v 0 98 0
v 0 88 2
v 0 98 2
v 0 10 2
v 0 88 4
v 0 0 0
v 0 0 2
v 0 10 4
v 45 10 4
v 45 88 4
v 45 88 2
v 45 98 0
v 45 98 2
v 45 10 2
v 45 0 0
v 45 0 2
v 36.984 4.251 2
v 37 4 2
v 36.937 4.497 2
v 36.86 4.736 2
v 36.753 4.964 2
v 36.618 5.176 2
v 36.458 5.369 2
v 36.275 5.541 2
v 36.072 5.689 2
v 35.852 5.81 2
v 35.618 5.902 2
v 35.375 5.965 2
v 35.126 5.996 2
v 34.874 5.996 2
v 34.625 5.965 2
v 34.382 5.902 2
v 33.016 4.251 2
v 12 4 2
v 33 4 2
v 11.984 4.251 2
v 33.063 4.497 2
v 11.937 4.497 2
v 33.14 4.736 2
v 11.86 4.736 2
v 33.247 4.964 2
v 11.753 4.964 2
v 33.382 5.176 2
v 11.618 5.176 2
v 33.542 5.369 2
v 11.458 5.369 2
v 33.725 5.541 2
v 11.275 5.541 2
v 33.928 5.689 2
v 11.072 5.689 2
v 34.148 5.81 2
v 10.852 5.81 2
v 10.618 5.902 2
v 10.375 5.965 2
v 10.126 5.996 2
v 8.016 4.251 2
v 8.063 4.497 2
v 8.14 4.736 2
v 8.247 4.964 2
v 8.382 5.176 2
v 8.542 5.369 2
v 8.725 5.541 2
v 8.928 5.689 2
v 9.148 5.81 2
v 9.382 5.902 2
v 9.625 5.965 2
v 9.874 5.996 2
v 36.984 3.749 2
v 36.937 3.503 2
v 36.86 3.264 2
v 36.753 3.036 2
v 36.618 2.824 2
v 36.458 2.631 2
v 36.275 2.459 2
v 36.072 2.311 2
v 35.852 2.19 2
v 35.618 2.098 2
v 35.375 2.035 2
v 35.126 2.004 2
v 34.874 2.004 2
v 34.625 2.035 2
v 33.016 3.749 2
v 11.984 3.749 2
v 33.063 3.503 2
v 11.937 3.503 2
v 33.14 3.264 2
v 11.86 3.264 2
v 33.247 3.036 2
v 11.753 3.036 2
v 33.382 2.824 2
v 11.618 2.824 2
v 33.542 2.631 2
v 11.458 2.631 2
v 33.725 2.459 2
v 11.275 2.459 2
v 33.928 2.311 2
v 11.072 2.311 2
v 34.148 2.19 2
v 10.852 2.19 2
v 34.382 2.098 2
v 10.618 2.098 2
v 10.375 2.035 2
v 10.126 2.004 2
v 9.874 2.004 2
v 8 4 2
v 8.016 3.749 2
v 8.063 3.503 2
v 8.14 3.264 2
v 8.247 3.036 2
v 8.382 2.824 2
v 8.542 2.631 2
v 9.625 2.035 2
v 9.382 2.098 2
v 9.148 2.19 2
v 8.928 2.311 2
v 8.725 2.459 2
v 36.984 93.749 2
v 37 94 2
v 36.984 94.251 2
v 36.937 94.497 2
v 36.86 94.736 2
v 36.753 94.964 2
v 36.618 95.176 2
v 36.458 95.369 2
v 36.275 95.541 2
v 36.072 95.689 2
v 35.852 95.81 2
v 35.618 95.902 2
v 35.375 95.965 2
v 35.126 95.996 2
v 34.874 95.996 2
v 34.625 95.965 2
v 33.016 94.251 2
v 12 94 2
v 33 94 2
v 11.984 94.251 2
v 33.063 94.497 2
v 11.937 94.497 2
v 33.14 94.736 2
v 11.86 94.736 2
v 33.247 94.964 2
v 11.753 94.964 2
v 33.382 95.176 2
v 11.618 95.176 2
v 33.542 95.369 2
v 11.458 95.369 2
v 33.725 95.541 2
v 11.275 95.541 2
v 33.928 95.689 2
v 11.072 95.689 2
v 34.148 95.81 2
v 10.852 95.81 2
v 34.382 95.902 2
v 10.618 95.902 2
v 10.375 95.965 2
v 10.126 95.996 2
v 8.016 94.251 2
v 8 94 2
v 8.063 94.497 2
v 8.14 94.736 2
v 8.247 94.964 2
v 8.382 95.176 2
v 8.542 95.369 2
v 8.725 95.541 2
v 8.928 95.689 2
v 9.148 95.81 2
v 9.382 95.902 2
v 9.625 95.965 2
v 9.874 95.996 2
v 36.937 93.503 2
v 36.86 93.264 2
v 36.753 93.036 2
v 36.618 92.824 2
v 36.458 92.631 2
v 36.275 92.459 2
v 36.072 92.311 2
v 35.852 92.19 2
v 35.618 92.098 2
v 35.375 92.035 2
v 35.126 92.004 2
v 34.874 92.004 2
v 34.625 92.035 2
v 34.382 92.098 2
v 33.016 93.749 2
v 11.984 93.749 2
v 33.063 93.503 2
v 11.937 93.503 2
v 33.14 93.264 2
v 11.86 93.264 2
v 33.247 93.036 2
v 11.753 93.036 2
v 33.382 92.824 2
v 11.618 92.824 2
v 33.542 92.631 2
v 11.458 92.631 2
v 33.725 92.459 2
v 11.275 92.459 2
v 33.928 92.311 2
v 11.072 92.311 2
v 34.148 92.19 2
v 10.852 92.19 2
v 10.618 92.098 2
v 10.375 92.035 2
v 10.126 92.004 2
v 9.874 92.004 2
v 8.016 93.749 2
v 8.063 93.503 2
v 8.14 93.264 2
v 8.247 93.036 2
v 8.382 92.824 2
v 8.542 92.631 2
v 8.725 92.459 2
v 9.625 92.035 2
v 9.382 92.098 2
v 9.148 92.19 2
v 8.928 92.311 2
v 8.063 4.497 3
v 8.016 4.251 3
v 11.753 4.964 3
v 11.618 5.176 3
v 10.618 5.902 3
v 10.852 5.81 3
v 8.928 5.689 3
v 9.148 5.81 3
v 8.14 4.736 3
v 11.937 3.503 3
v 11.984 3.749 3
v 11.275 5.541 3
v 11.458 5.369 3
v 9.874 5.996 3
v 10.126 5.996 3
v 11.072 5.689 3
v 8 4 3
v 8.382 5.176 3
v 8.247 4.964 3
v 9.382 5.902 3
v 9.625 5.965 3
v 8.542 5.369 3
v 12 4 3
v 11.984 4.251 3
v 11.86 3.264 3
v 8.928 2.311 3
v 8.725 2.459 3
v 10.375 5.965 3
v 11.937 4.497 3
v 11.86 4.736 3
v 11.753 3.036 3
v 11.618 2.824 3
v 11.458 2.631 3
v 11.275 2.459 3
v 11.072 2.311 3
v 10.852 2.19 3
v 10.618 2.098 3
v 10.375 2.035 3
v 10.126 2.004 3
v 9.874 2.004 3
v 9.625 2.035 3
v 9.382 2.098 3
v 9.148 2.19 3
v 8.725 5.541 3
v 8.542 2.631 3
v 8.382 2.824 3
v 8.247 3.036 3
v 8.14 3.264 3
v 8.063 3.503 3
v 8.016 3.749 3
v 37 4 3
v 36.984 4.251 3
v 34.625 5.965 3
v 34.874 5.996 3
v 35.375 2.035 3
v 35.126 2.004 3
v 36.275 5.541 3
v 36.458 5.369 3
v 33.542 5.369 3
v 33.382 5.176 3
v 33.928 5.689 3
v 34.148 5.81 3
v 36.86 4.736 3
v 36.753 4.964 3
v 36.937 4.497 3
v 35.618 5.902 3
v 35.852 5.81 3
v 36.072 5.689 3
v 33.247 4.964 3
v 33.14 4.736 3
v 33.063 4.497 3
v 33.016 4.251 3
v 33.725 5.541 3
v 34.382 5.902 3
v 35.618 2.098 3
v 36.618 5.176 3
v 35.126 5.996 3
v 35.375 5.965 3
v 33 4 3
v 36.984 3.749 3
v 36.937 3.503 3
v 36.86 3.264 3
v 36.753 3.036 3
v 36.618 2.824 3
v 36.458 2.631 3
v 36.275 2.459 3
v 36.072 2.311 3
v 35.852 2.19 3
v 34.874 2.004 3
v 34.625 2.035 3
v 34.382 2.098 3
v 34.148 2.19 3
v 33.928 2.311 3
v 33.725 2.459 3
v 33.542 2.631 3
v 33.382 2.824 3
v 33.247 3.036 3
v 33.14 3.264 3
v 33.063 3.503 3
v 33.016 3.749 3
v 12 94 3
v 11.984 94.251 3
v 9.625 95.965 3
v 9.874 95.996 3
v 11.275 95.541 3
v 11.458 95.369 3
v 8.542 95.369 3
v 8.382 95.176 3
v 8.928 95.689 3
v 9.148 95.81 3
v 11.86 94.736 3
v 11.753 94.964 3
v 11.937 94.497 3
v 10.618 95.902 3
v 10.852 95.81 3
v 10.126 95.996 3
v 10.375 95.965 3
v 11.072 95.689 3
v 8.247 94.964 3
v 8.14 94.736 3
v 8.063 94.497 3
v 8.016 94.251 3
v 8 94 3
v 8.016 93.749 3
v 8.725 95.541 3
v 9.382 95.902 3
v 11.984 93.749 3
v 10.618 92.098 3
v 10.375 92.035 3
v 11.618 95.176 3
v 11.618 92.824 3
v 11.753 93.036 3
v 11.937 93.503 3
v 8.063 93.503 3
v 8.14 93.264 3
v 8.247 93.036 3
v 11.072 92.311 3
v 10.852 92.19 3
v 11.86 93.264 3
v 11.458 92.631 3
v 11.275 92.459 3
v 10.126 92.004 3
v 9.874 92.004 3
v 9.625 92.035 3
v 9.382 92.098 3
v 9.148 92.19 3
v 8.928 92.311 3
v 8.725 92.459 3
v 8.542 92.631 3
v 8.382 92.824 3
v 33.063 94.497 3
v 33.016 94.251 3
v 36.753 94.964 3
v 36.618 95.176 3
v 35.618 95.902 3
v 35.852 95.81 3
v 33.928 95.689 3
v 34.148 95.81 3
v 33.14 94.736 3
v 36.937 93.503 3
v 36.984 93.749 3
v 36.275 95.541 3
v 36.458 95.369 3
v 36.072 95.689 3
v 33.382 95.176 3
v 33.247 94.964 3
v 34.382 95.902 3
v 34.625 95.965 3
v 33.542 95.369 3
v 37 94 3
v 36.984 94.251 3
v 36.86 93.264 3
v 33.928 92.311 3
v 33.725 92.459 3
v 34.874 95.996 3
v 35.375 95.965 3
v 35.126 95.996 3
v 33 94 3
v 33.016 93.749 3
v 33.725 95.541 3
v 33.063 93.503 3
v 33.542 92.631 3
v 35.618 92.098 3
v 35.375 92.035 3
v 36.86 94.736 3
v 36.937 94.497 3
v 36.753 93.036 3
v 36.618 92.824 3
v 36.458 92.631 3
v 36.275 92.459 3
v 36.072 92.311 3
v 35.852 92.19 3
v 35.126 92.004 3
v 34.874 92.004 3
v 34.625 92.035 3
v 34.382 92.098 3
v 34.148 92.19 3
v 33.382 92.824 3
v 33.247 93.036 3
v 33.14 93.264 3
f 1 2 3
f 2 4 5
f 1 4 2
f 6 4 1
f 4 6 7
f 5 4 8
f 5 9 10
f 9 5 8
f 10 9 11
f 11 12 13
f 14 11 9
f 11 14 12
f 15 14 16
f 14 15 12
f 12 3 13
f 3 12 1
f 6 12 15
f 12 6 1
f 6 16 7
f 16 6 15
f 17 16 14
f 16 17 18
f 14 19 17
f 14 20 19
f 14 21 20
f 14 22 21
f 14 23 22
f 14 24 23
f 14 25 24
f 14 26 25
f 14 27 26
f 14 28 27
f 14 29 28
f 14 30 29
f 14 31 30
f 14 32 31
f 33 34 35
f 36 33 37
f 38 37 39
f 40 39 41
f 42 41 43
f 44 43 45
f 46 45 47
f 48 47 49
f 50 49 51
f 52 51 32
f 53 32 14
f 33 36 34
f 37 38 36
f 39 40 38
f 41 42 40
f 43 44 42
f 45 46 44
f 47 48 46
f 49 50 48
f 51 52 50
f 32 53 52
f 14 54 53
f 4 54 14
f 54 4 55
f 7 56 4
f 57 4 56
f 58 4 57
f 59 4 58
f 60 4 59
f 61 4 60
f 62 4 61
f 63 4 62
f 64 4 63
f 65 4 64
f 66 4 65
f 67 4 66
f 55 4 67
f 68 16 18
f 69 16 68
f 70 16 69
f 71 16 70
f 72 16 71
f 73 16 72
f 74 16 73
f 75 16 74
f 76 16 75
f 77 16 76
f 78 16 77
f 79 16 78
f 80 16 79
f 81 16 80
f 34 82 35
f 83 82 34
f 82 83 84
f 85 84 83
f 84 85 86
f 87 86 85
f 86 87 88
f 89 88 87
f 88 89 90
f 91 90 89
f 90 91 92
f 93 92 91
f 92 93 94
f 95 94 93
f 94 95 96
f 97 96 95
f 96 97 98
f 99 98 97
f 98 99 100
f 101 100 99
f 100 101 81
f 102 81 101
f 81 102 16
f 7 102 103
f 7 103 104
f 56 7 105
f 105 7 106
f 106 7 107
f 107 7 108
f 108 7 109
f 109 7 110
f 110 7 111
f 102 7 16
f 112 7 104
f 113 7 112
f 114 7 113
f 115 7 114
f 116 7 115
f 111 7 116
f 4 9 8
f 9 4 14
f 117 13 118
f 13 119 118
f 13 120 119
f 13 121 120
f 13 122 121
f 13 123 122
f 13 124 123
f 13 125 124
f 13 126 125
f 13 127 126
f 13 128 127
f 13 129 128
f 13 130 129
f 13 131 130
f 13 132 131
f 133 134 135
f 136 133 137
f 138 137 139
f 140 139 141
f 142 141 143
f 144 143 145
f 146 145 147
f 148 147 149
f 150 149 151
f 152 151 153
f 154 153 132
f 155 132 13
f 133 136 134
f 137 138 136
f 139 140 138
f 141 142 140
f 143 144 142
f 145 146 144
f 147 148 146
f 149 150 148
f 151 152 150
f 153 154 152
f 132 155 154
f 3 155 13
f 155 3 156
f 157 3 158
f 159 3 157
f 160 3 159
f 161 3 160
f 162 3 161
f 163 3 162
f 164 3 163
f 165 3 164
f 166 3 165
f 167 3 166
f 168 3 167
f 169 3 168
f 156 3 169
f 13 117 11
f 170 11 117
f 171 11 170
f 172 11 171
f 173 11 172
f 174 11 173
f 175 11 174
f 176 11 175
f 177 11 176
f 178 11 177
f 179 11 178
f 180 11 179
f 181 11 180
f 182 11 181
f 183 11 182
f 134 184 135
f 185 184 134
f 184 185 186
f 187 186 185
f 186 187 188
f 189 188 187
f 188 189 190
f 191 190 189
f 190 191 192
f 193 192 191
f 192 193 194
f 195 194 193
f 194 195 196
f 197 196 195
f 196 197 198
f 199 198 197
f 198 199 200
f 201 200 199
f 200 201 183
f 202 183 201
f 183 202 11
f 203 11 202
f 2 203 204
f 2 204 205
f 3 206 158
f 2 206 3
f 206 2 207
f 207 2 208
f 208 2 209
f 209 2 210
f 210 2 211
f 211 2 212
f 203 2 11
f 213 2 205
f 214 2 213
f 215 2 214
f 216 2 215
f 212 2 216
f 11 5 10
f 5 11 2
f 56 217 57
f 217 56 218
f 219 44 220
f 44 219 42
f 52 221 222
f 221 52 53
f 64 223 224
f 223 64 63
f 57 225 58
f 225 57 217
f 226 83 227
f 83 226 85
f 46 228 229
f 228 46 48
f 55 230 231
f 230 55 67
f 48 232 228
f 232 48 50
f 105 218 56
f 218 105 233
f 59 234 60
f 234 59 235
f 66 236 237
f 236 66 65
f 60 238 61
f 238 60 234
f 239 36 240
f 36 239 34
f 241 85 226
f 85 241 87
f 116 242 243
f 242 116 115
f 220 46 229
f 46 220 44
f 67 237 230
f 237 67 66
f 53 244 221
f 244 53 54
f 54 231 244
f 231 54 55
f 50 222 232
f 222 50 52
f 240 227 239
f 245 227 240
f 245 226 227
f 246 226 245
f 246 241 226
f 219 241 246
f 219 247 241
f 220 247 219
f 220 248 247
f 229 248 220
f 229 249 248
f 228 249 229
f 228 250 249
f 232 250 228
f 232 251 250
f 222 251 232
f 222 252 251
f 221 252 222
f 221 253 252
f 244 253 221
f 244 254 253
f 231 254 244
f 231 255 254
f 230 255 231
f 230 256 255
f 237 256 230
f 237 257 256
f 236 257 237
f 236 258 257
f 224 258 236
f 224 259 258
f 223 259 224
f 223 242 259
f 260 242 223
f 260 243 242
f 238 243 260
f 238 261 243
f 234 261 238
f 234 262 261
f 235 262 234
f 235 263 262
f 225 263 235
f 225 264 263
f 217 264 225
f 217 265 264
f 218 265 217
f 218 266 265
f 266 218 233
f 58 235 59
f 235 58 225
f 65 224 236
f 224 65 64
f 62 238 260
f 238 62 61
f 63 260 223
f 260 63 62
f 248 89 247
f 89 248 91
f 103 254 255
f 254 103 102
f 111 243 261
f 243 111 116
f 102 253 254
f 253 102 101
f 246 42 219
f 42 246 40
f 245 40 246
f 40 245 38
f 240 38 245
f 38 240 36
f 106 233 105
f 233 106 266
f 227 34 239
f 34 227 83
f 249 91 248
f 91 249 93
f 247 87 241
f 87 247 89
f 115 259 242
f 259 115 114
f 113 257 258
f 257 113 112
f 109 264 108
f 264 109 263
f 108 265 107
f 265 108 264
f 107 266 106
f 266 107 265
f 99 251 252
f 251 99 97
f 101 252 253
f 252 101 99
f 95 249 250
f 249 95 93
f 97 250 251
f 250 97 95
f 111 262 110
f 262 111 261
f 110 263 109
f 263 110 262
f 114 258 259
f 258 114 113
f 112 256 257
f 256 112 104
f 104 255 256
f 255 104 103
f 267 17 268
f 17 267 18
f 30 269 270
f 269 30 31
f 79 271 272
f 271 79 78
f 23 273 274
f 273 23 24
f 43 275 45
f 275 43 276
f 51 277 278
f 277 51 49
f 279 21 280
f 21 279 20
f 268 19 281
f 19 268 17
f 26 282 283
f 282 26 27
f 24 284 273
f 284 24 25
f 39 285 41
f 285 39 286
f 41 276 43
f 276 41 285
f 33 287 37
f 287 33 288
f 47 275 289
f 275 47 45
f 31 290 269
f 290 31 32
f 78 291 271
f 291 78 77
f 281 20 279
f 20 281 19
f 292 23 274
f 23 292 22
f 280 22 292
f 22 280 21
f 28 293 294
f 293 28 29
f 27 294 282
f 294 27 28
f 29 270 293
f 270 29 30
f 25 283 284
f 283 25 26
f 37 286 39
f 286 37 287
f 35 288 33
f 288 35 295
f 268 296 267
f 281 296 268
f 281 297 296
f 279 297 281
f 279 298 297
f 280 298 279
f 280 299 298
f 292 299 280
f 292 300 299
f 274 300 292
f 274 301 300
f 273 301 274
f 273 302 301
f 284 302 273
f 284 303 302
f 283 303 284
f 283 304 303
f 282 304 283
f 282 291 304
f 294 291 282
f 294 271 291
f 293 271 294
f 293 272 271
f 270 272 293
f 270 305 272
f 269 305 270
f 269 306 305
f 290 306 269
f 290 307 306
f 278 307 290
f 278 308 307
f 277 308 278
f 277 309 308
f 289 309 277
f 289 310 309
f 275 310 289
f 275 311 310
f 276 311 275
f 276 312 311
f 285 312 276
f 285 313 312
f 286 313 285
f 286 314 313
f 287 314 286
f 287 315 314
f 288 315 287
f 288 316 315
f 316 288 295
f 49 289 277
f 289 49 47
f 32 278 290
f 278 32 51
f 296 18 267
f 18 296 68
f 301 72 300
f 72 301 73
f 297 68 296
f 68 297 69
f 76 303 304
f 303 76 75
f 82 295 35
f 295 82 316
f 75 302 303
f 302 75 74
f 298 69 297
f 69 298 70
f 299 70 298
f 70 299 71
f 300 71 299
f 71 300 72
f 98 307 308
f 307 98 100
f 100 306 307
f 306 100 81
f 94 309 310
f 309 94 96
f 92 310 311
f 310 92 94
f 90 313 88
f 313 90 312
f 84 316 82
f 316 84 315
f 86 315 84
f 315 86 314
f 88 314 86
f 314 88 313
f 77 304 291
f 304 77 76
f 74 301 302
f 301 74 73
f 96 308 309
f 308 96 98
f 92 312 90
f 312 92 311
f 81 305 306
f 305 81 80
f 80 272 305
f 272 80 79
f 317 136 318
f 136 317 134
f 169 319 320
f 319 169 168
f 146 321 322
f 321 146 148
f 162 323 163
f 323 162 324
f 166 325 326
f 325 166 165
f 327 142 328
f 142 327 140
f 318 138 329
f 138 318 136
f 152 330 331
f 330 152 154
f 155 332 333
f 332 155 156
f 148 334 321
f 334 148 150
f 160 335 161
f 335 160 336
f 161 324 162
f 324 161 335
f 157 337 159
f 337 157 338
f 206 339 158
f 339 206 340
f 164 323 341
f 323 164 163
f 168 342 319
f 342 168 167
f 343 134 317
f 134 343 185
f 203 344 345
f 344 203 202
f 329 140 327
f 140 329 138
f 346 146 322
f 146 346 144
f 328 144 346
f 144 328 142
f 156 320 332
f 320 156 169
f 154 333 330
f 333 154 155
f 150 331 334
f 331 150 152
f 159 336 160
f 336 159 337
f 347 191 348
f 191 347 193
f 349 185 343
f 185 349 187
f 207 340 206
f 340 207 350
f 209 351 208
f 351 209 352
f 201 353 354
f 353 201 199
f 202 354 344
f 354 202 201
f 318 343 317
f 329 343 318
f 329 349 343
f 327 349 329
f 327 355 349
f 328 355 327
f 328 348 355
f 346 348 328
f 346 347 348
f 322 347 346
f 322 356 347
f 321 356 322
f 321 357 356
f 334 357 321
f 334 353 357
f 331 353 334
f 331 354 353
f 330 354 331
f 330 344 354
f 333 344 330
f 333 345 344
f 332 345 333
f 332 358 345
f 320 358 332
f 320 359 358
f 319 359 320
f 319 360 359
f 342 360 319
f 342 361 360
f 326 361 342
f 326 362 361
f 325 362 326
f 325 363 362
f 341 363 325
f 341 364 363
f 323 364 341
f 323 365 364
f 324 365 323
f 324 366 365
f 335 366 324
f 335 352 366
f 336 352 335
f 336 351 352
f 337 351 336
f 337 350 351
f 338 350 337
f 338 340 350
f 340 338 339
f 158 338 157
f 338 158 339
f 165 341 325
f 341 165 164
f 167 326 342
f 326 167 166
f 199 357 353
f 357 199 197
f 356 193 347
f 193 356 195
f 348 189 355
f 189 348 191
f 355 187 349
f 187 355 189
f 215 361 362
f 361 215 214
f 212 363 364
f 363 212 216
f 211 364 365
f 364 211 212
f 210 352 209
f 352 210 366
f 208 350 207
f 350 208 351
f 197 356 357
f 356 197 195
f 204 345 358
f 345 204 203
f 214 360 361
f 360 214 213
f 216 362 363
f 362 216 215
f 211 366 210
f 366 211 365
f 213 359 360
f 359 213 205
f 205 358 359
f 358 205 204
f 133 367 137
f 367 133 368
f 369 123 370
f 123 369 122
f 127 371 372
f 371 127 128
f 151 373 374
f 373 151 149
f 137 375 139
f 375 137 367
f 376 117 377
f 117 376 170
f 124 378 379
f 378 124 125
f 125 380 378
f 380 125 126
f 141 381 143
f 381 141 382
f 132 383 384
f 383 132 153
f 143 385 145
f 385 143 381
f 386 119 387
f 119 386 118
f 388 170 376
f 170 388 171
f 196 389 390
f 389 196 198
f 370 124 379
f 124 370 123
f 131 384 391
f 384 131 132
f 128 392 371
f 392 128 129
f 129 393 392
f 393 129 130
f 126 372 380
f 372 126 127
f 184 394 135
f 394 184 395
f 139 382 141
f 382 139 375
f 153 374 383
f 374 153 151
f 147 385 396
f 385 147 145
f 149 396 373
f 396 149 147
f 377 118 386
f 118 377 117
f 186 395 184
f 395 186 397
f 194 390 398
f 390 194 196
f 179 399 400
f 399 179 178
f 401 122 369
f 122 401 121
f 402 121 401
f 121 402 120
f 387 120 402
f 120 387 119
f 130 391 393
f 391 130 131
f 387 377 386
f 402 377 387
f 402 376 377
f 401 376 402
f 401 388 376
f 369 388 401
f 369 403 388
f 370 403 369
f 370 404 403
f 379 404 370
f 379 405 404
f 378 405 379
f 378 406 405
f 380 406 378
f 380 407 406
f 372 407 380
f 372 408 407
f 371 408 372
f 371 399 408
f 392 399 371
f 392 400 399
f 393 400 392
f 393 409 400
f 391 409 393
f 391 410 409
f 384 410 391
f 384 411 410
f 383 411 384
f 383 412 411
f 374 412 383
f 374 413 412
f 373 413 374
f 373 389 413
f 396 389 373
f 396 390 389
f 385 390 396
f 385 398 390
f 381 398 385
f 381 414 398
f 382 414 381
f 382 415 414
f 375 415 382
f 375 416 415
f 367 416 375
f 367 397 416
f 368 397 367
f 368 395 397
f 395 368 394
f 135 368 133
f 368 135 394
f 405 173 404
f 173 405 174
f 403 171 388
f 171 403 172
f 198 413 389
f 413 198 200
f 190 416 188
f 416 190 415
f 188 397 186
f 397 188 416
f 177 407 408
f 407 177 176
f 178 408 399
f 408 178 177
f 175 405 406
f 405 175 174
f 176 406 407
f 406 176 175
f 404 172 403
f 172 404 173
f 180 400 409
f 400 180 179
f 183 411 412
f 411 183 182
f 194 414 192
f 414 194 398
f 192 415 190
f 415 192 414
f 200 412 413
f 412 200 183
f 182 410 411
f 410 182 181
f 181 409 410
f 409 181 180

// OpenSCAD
union() {
    difference() {
        cube([45,98,4]);
        translate([0, 0, 2])
            cube([45, 10, 2]);
        translate([0, 98 - 10, 2])
            cube([45, 10, 2]);
    };
    $fn=50;
    translate([10, 4, 0])
        cylinder(r=2,h=3);
    translate([(45 - 10), 4, 0])
        cylinder(r=2,h=3);
    translate([10, 98 - 4, 0])
        cylinder(r=2,h=3);
    translate([(45 - 10), 98 - 4, 0])
        cylinder(r=2,h=3);
};
